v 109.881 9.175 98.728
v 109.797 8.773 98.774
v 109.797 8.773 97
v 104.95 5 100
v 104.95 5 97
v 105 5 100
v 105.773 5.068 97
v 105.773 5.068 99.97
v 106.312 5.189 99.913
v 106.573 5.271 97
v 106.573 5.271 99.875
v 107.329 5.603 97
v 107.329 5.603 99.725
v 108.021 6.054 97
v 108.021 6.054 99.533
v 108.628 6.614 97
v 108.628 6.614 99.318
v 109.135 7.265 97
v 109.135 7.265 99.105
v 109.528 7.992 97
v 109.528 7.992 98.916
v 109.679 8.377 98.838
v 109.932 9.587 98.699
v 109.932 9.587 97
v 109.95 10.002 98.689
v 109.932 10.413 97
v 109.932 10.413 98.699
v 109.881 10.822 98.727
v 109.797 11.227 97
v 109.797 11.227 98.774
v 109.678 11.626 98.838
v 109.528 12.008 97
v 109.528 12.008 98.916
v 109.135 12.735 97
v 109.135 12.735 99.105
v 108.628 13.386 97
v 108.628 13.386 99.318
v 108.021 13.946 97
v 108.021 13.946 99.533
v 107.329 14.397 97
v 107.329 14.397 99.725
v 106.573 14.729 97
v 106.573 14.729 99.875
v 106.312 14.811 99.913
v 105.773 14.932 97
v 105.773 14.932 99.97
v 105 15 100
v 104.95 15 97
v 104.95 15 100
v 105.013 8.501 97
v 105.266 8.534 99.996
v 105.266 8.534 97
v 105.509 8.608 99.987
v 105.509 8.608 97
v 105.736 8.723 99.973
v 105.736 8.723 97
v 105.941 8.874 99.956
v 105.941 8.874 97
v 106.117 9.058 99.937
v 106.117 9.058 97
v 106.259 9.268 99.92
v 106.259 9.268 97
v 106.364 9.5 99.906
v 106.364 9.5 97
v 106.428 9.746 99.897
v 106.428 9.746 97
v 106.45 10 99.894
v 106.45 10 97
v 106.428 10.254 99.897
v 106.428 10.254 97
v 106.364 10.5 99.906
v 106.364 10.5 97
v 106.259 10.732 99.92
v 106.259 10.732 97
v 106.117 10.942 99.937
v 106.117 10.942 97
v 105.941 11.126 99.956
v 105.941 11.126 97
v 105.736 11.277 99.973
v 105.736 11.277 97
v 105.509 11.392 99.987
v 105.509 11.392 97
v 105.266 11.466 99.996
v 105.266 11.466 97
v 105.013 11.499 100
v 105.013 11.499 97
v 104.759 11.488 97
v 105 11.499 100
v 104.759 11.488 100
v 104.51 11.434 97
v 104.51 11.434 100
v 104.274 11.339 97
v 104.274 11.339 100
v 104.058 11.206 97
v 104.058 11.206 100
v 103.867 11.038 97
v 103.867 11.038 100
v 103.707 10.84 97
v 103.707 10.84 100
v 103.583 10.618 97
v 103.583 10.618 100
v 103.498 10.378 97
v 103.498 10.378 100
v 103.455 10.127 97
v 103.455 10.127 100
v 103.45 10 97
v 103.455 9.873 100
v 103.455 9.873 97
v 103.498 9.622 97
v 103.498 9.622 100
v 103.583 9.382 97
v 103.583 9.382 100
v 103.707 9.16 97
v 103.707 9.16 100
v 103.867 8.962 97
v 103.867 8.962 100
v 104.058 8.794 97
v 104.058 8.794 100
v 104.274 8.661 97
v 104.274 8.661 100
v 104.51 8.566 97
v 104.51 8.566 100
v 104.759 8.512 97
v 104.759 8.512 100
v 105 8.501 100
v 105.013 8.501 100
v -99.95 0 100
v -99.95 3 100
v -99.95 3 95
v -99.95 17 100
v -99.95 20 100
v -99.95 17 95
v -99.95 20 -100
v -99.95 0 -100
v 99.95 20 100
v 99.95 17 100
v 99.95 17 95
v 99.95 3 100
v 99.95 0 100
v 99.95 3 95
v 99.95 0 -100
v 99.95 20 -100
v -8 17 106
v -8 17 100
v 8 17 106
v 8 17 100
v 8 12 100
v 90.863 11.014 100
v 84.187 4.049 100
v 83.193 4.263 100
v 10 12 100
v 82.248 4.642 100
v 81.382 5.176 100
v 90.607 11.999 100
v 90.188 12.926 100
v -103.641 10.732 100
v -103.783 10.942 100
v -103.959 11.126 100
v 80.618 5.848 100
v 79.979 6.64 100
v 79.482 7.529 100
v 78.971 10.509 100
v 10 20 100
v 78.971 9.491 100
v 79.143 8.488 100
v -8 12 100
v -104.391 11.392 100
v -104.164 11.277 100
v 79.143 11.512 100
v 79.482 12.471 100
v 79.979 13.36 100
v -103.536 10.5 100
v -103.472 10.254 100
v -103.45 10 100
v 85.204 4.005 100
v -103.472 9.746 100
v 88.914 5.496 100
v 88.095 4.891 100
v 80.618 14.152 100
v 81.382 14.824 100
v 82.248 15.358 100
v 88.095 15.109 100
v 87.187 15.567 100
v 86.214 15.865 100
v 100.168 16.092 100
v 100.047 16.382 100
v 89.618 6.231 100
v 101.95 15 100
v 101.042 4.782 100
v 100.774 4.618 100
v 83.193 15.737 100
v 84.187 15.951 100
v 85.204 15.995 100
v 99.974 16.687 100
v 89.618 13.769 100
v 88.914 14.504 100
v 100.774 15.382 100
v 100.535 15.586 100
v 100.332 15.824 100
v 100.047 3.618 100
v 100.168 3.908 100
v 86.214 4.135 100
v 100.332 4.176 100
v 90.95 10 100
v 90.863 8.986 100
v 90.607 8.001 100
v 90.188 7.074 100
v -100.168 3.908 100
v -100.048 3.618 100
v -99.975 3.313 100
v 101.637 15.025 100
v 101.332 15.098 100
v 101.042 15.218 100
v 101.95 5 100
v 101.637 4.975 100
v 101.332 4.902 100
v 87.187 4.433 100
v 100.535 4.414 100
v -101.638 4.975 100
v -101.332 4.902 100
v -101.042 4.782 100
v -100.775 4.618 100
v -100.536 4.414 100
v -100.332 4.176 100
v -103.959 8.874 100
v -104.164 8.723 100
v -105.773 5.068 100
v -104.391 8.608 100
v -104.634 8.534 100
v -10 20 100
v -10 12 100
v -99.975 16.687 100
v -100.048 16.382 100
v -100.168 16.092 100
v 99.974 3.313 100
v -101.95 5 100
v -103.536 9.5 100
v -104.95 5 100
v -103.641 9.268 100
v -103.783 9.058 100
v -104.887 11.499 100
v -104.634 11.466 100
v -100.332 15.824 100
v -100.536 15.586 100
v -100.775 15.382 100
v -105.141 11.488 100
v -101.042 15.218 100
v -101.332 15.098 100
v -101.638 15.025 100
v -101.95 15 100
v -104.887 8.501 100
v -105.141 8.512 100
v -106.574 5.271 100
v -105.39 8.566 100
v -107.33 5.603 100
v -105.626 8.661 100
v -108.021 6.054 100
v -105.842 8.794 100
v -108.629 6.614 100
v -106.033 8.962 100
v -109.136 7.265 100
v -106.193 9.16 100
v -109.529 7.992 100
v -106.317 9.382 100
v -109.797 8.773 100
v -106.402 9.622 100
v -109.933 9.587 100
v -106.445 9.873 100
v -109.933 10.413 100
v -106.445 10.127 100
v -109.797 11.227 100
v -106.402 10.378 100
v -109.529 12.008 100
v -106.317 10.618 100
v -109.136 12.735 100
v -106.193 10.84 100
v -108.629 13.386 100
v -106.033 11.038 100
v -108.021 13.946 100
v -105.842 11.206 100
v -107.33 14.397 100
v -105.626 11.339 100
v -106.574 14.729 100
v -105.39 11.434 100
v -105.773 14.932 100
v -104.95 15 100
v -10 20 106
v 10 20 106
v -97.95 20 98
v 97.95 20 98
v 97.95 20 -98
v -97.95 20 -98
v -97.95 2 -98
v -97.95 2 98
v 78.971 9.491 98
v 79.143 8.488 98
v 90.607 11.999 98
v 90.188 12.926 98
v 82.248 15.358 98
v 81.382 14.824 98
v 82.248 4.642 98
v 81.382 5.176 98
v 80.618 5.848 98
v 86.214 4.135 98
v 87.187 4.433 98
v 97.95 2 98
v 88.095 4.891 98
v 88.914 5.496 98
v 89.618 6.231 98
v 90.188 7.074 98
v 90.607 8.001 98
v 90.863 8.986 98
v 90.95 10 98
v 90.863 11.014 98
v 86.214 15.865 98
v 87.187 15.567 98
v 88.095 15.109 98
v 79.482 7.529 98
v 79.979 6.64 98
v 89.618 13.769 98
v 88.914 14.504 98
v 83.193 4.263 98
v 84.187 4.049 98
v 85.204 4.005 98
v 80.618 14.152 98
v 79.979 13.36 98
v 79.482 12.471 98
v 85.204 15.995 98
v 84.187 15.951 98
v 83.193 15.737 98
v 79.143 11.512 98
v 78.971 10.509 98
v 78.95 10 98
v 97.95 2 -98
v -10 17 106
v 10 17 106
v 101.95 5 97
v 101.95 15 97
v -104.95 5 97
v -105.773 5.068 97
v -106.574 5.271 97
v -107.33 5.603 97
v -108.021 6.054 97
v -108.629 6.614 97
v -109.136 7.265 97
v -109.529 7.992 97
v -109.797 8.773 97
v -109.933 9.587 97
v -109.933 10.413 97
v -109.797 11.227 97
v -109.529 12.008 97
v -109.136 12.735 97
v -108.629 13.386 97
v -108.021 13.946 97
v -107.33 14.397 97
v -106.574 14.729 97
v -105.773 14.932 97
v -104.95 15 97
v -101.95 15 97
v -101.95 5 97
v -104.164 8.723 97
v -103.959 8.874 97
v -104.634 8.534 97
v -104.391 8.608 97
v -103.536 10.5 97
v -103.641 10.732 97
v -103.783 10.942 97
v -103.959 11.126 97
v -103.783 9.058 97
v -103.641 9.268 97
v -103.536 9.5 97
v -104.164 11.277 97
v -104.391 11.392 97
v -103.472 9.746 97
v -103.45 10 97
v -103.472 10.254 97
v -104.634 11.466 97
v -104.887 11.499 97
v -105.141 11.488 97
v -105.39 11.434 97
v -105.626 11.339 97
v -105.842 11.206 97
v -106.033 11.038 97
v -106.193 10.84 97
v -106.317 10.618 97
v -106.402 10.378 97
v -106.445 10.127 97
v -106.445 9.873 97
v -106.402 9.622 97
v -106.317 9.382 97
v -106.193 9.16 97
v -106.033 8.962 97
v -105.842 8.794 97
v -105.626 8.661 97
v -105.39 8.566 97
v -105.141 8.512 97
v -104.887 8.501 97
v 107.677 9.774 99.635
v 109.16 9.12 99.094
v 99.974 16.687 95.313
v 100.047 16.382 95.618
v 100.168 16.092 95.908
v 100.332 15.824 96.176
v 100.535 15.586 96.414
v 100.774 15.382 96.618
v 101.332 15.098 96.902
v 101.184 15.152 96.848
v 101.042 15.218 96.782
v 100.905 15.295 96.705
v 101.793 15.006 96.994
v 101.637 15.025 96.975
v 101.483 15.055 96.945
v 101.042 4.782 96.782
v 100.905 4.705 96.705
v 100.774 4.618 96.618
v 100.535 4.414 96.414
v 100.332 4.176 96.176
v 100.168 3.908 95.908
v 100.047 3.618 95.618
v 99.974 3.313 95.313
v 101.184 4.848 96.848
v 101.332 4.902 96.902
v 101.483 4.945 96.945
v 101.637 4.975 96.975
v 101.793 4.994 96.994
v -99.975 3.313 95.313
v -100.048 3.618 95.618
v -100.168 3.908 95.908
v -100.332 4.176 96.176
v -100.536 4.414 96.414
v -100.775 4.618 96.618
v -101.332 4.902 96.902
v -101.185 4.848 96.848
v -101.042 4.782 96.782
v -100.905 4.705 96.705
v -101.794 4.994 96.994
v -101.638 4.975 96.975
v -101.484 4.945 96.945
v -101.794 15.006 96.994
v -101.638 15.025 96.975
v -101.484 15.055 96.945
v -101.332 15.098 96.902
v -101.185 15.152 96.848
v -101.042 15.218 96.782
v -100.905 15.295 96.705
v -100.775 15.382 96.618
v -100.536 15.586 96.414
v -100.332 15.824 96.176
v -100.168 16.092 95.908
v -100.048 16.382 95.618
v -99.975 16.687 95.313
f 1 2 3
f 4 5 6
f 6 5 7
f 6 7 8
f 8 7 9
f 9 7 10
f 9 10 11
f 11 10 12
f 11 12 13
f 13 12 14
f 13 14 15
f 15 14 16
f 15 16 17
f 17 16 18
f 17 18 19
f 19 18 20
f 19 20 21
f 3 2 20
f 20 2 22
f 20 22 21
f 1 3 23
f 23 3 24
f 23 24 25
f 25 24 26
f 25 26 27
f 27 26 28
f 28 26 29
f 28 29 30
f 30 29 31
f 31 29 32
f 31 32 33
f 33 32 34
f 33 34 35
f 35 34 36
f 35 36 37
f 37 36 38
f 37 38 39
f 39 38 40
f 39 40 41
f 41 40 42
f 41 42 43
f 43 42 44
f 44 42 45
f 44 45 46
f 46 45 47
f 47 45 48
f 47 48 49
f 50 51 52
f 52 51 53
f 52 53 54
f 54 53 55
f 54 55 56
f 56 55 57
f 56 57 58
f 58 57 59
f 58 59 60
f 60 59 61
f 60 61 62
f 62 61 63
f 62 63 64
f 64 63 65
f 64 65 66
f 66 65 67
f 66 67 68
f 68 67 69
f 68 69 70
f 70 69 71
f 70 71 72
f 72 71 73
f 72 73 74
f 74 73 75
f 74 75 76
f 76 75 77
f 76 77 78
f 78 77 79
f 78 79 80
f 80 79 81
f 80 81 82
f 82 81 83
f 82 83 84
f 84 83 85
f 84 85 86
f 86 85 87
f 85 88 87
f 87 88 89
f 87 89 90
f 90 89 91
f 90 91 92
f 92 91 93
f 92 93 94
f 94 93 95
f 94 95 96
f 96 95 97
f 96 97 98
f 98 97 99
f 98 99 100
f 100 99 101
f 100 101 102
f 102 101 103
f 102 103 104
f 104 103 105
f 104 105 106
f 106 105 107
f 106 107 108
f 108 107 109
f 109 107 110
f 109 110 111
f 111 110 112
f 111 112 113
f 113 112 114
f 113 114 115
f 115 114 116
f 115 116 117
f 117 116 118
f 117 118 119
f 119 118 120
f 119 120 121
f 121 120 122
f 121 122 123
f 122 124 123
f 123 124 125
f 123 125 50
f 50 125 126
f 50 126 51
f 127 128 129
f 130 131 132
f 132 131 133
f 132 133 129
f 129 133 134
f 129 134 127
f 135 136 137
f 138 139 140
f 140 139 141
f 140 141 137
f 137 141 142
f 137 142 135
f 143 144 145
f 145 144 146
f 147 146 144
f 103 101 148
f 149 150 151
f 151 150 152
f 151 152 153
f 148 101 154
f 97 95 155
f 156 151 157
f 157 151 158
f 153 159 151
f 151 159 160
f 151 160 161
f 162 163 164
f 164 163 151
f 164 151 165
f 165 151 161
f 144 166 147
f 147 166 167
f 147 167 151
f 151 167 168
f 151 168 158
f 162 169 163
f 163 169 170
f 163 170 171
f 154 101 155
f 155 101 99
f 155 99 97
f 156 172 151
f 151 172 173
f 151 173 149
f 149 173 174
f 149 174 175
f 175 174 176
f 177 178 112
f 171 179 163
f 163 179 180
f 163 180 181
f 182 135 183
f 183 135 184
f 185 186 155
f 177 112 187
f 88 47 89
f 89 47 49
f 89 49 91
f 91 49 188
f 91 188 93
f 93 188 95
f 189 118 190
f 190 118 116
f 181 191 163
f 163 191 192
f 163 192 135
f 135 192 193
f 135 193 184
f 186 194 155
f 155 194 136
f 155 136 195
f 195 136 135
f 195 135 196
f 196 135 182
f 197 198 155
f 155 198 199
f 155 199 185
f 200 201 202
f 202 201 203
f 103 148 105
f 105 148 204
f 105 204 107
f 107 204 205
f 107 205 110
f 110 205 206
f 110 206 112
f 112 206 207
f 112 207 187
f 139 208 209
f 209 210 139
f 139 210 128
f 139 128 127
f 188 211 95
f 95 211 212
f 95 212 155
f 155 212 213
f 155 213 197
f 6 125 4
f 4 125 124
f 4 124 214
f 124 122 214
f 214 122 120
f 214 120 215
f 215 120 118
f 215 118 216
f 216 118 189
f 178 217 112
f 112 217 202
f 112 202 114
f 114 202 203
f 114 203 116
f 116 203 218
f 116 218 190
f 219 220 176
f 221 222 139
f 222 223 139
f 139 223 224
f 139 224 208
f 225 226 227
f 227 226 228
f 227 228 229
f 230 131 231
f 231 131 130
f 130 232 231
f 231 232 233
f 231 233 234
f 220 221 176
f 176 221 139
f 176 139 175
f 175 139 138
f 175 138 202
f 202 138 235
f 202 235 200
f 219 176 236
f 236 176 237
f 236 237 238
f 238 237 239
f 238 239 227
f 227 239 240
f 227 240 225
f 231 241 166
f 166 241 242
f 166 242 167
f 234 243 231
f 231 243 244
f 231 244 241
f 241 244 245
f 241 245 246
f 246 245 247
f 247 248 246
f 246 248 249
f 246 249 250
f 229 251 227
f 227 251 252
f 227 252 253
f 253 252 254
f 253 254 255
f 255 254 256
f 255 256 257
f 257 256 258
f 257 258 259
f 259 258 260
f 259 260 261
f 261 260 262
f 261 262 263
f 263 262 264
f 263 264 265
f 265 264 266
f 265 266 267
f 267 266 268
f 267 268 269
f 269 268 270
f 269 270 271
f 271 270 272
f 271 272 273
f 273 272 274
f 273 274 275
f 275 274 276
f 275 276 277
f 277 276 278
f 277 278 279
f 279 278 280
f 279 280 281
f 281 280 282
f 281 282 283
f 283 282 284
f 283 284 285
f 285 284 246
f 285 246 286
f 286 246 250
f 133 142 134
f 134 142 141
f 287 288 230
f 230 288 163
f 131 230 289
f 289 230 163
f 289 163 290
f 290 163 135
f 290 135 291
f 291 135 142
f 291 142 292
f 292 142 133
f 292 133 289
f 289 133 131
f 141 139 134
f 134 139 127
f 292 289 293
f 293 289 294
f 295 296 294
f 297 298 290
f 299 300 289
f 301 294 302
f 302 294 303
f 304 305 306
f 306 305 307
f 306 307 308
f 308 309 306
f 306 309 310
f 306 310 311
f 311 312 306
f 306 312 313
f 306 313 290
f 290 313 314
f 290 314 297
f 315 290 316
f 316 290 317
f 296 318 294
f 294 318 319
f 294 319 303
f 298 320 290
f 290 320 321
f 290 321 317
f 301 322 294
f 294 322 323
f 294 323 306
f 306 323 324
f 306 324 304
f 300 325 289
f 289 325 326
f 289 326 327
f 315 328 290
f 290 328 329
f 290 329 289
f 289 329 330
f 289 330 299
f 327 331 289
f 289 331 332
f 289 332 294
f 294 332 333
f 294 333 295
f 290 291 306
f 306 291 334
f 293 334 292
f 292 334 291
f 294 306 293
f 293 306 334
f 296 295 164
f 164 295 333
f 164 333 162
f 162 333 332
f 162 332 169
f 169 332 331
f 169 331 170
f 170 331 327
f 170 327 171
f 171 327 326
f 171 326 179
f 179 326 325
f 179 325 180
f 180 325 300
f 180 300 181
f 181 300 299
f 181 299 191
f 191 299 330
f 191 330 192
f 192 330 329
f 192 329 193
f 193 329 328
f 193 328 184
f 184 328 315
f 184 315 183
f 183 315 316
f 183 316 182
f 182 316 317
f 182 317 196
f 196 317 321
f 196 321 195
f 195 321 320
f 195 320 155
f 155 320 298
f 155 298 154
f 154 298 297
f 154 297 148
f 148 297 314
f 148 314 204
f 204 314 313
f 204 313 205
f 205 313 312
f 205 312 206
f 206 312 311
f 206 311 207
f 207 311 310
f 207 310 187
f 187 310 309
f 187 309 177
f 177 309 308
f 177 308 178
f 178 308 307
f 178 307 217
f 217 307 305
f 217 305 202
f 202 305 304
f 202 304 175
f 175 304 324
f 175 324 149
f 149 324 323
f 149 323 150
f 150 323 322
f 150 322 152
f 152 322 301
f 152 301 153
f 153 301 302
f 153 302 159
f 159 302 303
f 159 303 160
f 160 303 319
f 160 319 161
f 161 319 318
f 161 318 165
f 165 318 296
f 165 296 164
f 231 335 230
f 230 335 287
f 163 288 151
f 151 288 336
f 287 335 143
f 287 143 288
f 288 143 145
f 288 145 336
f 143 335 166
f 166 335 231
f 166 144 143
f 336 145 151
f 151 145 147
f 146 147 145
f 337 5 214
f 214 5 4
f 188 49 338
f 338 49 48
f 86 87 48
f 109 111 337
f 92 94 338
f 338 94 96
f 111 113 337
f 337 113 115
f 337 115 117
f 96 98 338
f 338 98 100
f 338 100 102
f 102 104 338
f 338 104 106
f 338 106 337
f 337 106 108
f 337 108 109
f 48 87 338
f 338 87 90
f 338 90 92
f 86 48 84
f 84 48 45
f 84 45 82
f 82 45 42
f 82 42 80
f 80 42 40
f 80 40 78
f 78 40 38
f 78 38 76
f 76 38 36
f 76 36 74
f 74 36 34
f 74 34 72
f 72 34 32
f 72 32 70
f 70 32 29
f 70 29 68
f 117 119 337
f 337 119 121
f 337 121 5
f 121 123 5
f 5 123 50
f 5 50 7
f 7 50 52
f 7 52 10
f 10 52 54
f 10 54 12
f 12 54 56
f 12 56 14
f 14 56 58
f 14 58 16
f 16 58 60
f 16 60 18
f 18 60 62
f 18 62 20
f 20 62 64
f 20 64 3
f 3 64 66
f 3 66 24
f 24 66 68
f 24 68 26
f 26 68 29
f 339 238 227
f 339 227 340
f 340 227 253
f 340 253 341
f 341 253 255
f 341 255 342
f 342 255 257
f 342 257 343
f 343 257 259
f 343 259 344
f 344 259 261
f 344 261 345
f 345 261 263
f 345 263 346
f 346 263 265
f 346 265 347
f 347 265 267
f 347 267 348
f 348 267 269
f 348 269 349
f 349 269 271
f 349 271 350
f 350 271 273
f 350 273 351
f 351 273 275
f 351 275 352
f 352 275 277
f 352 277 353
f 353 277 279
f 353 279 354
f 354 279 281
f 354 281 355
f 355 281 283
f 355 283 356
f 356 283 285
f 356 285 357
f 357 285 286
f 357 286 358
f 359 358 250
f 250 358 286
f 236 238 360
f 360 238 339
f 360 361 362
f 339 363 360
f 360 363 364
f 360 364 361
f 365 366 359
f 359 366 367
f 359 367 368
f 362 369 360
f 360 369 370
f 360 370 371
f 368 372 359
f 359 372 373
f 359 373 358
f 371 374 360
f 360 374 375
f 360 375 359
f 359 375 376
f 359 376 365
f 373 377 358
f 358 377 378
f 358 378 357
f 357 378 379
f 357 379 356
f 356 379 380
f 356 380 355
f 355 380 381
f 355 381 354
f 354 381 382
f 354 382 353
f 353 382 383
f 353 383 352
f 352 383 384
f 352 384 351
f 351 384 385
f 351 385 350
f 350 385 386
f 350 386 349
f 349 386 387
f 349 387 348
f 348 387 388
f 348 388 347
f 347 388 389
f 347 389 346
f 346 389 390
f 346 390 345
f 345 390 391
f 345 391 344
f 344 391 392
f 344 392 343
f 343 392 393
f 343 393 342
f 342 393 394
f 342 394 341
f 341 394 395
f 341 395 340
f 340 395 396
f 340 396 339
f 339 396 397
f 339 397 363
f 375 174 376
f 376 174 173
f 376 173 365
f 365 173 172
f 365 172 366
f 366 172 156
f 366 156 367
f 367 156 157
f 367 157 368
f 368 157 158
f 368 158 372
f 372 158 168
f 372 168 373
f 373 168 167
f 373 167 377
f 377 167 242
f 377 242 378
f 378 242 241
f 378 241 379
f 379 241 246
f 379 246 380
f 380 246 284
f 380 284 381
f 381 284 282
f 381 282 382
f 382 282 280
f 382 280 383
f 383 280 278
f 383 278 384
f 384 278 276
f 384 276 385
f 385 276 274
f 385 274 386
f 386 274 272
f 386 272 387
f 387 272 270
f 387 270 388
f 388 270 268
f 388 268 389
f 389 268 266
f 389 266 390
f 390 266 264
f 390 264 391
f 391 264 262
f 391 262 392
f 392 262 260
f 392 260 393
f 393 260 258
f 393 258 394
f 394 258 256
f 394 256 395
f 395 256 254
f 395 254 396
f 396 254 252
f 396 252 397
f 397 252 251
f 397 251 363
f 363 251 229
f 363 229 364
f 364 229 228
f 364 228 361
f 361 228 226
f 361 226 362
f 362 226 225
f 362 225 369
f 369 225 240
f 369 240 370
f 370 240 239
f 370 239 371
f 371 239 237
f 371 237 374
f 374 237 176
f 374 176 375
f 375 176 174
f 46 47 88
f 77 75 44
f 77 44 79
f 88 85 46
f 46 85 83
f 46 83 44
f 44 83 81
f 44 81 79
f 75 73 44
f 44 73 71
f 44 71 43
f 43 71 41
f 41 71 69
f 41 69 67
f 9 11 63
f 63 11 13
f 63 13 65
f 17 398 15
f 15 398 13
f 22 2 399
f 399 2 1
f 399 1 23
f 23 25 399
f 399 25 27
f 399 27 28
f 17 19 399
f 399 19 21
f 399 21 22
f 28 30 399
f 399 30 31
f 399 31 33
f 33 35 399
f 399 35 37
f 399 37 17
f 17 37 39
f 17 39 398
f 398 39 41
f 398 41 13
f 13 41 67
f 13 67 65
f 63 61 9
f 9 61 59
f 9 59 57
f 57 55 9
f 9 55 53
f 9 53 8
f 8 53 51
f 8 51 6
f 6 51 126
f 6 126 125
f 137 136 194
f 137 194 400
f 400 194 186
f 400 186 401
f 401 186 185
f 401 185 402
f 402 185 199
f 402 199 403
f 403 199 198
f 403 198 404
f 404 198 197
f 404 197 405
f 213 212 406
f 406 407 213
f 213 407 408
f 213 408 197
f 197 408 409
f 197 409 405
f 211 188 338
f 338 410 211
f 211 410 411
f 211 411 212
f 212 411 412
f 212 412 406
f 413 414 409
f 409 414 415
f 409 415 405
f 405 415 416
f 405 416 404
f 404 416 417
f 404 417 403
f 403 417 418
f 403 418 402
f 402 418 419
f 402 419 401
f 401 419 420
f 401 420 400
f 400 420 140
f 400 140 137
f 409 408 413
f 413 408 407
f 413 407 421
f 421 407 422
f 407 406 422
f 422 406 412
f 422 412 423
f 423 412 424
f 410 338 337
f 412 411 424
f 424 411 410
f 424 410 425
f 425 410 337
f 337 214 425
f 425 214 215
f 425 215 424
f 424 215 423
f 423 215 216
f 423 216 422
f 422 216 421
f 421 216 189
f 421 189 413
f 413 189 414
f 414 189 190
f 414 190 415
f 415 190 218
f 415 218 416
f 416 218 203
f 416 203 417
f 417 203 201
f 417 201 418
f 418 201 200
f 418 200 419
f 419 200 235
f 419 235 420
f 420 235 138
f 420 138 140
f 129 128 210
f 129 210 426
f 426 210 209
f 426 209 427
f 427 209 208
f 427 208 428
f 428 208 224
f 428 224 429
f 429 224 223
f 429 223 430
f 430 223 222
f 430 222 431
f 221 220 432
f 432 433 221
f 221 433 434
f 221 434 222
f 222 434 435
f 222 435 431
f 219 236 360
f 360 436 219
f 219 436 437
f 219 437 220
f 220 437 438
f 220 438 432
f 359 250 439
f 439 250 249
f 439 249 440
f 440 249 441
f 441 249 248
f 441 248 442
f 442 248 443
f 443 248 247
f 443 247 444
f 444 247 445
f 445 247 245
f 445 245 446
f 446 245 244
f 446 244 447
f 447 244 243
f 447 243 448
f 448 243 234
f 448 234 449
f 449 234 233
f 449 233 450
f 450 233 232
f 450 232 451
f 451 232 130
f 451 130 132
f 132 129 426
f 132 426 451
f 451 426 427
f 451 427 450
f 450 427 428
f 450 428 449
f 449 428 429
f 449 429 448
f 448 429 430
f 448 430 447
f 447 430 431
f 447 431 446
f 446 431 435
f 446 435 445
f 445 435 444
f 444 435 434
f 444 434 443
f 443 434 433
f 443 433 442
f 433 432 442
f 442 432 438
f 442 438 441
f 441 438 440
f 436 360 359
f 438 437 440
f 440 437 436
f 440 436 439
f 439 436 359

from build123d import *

# Parameters (mm, degrees)
SKETCH1_W           = 199.9
SKETCH1_H           = 200
BOSS_EXTRUDE1_DEPTH = 20
SHELL1_T            = -2
SKETCH2_R           = 6
CUT_EXTRUDE1_DEPTH  = 20
SKETCH3_W           = 20
SKETCH3_H           = 8
BOSS_EXTRUDE2_DEPTH = 3
RIB1_REACH          = 156.029
SKETCH5_WALL_W      = 317.868701922
SKETCH5_WALL_H      = 2
SKETCH6_R           = 1.5
BOSS_EXTRUDE3_DEPTH = 3
CUT_EXTRUDE2_DEPTH  = 154.460100678
FILLET1_R           = 2


with BuildPart() as part:
    # Sketch1 → Boss-Extrude1 (new body)
    with BuildSketch(Plane(origin=(0, 0, 0), x_dir=(1, 0, 0), z_dir=(0, 1, 0))):
        Rectangle(SKETCH1_W, SKETCH1_H)
    extrude(amount=BOSS_EXTRUDE1_DEPTH)

    # Shell1
    shell1_openings = [part.faces().sort_by_distance(p)[0] for p in [
        (0, 20, 0),
    ]]
    offset(amount=SHELL1_T, openings=shell1_openings, kind=Kind.INTERSECTION)

    # Sketch2 → Cut-Extrude1 (cut)
    with BuildSketch(Plane.XY.offset(100)):
        with Locations((84.95, 10)):
            Circle(SKETCH2_R)
    extrude(amount=-CUT_EXTRUDE1_DEPTH, mode=Mode.SUBTRACT)

    # Sketch3 → Boss-Extrude2 (add)
    with BuildSketch(Plane(origin=(0, 20, 0), x_dir=(1, 0, 0), z_dir=(0, 1, 0))):
        with Locations((0, -102)):
            Rectangle(SKETCH3_W, SKETCH3_H)
    extrude(amount=-BOSS_EXTRUDE2_DEPTH)

    # Sketch5 wall → Rib1 (add, up to next)
    with BuildSketch(Plane(origin=(-10, 14.5, 103), x_dir=(0, -0.640184399664, -0.768221279597), z_dir=(0, -0.768221279597, 0.640184399664)), mode=Mode.PRIVATE) as rib1_sk1:
        with Locations((0, 1)):
            Rectangle(SKETCH5_WALL_W, SKETCH5_WALL_H)
    rib1_tool1 = extrude(rib1_sk1.sketch, amount=-RIB1_REACH, mode=Mode.PRIVATE) - part.part
    rib1 = rib1_tool1.solids().sort_by_distance((-10, 14.5, 103))[0]
    add(rib1)

    # Mirror1: Rib1 across plane
    add(rib1.mirror(Plane(origin=(0, 0, 0), x_dir=(0, 0, 1), z_dir=(1, 0, 0))))

    # Sketch6 → Boss-Extrude3 (add)
    # profile 1 of 2: a face of its own
    with BuildSketch(Plane.XY.offset(100)):
        with BuildLine():
            Line((-104.95, 15), (-99.95, 15))
            Line((-99.95, 15), (-99.95, 5))
            Line((-99.95, 5), (-104.95, 5))
            ThreePointArc((-104.95, 5), (-109.95, 10), (-104.95, 15))
        make_face()
        with Locations((-104.95, 10)):
            Circle(SKETCH6_R, mode=Mode.SUBTRACT)
    # profile 2 of 2: a face of its own
    with BuildSketch(Plane.XY.offset(100)):
        with BuildLine():
            Line((104.95, 15), (99.95, 15))
            Line((99.95, 15), (99.95, 5))
            Line((99.95, 5), (104.95, 5))
            ThreePointArc((104.95, 5), (109.95, 10), (104.95, 15))
        make_face()
        with Locations(Location((104.95, 10, 0), (0, 0, 180))):
            Circle(SKETCH6_R, mode=Mode.SUBTRACT)
    extrude(amount=-BOSS_EXTRUDE3_DEPTH)

    # Sketch7 → Cut-Extrude2 (cut, through all)
    with BuildSketch(Plane(origin=(0, 15, 0), x_dir=(1, 0, 0), z_dir=(0, 1, 0))):
        with BuildLine():
            Line((105, -100), (109.95, -100))
            Line((109.95, -100), (109.95, -98.688929738))
            ThreePointArc((109.95, -98.688929738), (107.560342029, -99.666677231), (105, -100))
        make_face()
    extrude(amount=-CUT_EXTRUDE2_DEPTH, mode=Mode.SUBTRACT)

    # Fillet1
    fillet1_edges = [part.edges().sort_by_distance(p)[0] for p in [
        (-99.95, 10, 97),
        (-99.95, 15, 98.5),
        (-99.95, 5, 98.5),
        (99.95, 10, 97),
        (99.95, 5, 98.5),
        (99.95, 15, 98.5),
    ]]
    fillet(fillet1_edges, radius=FILLET1_R)


solid = part.part
